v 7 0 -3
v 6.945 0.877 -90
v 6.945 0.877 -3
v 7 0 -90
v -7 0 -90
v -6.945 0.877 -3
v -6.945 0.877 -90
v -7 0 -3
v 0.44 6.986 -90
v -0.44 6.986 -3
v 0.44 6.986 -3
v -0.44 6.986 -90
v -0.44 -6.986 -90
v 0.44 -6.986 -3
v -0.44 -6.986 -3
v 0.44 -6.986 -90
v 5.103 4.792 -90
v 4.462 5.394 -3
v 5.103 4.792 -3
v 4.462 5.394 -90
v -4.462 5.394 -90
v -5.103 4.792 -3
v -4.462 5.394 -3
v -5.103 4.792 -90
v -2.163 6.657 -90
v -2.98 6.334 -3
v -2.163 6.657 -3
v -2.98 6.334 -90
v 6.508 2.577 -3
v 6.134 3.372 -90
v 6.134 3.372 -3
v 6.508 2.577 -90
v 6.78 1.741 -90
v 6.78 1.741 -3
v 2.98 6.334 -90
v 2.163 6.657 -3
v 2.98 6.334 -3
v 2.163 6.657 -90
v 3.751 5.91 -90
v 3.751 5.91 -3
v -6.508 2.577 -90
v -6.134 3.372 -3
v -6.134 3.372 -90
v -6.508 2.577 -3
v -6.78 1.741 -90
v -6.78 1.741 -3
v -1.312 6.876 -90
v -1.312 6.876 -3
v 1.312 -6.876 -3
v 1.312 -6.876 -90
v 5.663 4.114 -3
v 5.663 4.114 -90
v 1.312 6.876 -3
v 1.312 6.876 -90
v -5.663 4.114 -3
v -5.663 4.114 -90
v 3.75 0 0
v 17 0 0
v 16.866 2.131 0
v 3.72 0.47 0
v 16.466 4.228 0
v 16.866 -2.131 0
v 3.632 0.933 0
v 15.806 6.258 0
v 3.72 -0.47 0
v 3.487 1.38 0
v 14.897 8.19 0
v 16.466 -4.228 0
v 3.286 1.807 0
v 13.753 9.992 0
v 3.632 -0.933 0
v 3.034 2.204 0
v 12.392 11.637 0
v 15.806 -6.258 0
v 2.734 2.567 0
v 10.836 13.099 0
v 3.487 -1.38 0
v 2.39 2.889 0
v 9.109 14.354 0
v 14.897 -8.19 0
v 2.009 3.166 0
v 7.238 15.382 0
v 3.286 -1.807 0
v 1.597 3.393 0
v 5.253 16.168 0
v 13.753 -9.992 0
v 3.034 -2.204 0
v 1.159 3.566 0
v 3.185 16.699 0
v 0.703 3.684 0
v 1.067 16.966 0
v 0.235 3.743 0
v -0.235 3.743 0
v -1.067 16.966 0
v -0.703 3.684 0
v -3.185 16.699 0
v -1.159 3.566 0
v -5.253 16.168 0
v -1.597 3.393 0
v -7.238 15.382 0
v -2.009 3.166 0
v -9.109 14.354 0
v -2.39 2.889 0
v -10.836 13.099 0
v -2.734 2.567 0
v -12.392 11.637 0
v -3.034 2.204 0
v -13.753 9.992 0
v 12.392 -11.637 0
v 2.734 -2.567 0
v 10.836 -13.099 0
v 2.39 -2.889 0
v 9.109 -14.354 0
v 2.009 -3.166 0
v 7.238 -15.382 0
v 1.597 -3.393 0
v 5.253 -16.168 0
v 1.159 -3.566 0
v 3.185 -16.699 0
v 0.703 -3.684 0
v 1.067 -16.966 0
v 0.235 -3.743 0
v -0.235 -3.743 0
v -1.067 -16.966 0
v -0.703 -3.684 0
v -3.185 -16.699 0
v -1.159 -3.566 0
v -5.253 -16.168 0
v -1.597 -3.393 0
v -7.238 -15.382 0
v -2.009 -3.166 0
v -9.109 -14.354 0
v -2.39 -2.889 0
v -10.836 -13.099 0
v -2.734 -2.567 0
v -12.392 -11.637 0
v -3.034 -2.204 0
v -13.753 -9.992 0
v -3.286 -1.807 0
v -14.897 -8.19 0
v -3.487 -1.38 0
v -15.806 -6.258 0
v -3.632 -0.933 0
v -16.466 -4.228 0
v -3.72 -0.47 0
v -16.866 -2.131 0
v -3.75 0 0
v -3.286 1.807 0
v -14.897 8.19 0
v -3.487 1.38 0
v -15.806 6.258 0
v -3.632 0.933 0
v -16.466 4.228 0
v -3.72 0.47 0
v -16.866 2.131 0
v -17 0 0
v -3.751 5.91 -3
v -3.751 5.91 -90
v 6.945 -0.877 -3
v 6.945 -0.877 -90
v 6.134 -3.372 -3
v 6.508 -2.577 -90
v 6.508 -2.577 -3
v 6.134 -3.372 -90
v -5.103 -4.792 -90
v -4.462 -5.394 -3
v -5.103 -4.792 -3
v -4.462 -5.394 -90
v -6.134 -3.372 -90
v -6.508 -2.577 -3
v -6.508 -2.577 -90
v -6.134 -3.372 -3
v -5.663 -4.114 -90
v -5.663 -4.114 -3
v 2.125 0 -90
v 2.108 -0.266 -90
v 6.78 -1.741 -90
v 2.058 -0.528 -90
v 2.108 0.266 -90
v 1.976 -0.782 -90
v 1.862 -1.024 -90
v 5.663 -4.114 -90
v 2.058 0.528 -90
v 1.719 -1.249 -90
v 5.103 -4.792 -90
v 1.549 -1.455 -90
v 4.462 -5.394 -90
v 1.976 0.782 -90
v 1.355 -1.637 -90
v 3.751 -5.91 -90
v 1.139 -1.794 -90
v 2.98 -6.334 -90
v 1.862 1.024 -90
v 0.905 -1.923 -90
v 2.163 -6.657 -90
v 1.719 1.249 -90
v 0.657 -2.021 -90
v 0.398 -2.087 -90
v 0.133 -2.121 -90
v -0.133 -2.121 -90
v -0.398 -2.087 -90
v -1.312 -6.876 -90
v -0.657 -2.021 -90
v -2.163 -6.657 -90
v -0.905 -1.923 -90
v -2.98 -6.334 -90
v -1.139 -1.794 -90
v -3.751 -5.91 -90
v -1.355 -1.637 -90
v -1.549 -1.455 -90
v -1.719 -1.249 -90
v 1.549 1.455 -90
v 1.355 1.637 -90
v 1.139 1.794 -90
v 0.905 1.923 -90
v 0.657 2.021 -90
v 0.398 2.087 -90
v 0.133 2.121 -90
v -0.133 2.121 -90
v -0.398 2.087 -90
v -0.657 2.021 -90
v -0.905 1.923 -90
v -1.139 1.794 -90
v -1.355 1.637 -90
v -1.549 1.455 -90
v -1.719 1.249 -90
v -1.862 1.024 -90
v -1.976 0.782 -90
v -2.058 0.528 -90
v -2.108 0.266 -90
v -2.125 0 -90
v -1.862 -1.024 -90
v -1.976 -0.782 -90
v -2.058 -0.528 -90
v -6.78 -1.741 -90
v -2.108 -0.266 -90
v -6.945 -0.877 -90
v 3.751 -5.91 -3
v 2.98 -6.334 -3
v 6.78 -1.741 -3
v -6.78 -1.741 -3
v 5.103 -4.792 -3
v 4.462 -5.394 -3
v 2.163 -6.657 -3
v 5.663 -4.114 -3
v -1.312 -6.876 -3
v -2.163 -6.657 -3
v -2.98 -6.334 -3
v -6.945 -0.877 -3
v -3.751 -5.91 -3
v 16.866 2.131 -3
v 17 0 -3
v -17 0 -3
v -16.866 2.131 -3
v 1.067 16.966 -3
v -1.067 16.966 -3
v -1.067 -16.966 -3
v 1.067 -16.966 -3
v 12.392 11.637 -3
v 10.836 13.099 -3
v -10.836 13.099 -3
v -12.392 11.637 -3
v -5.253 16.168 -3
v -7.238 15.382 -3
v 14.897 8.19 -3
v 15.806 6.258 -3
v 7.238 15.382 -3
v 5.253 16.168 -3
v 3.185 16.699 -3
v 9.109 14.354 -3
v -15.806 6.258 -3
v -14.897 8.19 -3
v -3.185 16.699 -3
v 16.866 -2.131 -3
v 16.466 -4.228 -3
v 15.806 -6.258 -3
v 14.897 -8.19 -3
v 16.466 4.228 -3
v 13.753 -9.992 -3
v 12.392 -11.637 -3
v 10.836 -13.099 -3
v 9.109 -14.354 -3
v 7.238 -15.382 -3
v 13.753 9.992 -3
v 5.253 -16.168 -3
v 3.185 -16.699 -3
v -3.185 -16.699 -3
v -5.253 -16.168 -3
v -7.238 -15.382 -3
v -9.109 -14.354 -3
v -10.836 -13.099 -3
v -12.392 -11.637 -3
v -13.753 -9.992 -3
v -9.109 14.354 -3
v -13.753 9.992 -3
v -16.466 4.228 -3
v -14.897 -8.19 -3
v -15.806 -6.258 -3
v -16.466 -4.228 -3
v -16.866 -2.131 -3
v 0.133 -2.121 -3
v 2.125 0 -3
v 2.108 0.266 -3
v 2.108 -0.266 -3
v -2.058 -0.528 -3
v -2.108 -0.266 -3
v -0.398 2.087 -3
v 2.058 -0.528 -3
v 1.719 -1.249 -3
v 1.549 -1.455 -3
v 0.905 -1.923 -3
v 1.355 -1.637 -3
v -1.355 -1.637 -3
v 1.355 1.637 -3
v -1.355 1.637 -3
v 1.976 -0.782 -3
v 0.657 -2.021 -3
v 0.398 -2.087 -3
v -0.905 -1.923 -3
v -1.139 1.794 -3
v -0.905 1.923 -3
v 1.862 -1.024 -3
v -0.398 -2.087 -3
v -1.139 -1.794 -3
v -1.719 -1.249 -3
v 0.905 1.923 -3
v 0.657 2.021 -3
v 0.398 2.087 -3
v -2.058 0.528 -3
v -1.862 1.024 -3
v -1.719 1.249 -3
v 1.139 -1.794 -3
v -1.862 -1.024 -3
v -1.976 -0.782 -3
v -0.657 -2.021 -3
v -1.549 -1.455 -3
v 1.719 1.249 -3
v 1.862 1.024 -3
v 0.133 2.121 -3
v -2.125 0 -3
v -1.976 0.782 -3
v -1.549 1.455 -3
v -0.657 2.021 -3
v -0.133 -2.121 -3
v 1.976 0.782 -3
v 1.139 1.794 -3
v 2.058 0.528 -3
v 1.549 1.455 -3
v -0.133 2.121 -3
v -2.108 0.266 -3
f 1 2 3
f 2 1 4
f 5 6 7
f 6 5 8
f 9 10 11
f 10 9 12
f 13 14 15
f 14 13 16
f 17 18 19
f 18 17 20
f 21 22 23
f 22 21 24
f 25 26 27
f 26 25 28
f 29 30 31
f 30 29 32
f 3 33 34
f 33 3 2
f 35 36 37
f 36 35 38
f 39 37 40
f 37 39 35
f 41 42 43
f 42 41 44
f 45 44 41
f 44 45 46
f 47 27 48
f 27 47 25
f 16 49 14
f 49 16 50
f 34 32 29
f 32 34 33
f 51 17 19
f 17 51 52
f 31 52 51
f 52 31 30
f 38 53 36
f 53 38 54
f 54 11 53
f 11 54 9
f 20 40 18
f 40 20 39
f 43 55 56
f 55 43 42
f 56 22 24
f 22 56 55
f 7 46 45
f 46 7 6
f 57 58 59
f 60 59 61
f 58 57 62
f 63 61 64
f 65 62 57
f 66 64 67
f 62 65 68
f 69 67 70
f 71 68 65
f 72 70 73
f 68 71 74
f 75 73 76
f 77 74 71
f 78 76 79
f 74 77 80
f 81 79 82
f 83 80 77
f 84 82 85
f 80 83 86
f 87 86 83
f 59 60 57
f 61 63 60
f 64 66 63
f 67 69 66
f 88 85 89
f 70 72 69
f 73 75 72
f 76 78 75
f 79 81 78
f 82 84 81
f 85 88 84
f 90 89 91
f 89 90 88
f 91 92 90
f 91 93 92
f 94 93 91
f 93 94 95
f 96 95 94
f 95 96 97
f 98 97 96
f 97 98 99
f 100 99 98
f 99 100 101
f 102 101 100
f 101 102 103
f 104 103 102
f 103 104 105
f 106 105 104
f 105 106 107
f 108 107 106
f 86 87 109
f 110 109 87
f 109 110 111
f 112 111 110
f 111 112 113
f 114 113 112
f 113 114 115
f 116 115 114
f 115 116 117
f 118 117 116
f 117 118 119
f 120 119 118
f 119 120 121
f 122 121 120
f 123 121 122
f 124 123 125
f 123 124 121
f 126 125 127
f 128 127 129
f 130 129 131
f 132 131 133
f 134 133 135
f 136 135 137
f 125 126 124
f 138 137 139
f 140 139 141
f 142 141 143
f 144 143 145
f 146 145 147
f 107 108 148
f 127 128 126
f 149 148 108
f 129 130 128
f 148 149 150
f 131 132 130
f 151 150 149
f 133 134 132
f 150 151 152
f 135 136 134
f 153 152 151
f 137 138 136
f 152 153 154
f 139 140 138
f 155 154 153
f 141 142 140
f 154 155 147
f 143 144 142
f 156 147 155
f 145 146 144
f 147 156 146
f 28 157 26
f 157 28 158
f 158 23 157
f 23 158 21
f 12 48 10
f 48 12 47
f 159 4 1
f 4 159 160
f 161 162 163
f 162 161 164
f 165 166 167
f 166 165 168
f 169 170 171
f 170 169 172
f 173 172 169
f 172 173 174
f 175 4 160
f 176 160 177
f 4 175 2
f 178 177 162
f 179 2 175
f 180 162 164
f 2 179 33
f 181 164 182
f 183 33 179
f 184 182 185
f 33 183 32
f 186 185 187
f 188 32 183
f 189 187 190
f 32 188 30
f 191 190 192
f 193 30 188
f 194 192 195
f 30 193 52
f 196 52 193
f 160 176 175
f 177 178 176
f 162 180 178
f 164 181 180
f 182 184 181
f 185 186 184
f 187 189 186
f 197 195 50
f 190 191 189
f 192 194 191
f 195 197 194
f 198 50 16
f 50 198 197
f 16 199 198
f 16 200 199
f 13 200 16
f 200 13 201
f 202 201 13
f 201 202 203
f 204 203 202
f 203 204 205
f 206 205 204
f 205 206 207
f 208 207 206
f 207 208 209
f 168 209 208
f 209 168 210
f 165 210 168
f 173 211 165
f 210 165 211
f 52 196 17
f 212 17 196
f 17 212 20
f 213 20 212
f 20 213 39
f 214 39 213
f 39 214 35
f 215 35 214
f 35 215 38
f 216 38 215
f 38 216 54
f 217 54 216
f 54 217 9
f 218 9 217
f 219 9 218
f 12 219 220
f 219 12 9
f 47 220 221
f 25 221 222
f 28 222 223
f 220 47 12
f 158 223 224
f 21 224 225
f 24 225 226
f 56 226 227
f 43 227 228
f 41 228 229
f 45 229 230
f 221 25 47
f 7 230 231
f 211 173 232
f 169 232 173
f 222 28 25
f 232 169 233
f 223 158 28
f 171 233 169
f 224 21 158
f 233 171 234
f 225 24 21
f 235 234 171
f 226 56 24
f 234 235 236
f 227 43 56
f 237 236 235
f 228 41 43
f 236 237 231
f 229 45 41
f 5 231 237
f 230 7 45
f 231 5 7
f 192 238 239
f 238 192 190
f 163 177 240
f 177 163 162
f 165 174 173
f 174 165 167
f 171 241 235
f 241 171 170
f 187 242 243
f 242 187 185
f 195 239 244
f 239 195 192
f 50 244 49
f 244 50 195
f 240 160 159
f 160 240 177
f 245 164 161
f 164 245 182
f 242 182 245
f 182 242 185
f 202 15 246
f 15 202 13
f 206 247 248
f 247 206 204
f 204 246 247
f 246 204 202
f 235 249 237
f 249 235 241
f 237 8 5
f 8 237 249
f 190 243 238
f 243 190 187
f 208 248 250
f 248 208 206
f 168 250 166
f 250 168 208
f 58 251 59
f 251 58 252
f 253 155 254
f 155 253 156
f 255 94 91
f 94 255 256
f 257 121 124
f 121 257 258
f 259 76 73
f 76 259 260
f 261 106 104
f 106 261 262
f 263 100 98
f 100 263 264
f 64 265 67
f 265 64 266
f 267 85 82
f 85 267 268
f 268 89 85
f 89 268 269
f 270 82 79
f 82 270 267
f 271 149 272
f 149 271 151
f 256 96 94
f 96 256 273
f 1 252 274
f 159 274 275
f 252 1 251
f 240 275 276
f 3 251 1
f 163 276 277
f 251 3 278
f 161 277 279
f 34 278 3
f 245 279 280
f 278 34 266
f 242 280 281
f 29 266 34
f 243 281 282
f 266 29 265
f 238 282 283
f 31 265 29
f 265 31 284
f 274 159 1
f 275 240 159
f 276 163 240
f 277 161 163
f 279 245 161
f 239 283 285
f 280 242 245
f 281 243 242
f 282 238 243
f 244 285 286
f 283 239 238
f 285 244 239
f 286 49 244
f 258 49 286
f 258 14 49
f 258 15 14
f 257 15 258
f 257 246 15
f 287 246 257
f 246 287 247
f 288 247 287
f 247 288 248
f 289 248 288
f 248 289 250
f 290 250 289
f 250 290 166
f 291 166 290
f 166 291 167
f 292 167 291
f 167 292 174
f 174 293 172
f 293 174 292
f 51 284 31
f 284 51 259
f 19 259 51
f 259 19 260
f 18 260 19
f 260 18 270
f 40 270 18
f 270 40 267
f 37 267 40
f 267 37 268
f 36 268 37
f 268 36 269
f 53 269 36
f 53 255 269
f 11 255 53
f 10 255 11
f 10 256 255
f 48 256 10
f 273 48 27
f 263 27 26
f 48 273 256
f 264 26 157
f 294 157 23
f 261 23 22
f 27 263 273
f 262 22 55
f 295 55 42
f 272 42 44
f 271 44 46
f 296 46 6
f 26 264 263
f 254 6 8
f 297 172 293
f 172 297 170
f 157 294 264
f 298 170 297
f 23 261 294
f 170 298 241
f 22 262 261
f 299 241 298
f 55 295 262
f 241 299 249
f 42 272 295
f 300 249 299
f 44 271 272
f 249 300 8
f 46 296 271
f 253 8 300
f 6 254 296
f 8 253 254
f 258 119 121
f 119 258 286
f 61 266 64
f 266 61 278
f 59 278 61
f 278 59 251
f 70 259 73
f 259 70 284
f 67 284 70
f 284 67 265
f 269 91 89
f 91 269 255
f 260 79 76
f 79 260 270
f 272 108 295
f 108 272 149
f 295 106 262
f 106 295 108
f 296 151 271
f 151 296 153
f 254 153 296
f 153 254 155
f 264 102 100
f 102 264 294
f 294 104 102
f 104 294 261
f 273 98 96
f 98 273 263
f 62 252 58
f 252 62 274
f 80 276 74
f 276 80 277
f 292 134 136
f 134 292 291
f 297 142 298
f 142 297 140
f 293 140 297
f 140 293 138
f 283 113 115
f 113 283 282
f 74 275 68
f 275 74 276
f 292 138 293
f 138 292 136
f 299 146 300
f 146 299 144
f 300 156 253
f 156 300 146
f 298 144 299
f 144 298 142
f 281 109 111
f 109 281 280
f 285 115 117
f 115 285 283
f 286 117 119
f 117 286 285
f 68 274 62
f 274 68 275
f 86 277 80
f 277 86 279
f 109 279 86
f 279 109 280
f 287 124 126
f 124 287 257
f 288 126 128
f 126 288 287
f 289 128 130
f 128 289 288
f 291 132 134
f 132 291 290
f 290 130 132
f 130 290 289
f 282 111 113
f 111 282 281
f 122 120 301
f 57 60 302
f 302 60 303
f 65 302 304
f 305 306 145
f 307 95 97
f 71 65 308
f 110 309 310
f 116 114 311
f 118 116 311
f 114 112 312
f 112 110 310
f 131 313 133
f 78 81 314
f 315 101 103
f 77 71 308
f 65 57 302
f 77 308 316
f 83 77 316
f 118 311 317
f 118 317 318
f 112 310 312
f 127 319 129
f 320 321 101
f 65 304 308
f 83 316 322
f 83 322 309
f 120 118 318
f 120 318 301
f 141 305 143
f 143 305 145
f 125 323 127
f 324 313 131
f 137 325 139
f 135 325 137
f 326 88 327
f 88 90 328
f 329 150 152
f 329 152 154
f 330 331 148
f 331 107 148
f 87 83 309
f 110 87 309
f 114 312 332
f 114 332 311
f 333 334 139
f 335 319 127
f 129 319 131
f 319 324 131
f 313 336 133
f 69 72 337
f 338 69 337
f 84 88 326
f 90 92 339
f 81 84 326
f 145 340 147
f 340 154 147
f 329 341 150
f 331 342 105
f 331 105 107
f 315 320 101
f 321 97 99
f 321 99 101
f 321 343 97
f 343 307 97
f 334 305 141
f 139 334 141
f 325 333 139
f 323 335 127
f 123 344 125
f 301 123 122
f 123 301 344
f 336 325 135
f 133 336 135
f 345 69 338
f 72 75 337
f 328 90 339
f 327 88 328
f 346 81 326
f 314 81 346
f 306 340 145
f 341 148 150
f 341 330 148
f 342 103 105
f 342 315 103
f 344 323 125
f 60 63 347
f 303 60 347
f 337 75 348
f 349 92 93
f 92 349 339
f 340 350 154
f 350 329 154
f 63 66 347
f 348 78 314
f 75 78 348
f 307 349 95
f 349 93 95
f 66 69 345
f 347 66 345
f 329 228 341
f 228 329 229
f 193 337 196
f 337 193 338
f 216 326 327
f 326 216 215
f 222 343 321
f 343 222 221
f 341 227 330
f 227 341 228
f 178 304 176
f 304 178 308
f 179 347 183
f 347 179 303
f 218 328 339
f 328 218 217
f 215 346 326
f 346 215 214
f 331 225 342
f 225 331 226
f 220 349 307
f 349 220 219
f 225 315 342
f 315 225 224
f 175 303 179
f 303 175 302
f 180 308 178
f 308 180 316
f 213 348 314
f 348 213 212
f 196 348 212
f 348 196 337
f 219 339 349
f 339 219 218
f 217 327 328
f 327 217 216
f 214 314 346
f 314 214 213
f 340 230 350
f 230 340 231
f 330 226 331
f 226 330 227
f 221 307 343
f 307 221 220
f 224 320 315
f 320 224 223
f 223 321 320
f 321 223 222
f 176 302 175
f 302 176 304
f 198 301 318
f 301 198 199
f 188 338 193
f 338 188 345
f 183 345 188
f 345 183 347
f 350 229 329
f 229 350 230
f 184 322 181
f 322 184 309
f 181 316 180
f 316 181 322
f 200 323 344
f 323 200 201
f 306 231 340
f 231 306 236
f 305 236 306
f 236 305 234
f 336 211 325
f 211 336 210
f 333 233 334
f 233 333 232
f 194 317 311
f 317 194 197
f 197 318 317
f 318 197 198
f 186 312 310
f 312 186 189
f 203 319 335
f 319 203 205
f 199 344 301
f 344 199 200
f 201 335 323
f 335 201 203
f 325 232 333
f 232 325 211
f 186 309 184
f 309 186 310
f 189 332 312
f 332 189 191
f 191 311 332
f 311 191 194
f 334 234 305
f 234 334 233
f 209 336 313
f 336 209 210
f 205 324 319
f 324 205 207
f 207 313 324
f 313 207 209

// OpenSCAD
$fn = 50;


difference() {
	union() {
		translate(v = [0, 0, -90.0000000000]) {
			cylinder(h = 90, r = 7.0000000000);
		}
		translate(v = [0, 0, -3.0000000000]) {
			cylinder(h = 3, r = 17.0000000000);
		}
	}
	union() {
		translate(v = [0, 0, 0]) {
			rotate(a = [0, 0, 0]) {
				difference() {
					union() {
						#translate(v = [0, 0, -90.0000000000]) {
							cylinder(h = 90, r = 2.0000000000);
						}
						#translate(v = [0, 0, -3]) {
							cylinder(h = 3, r1 = 2.1250000000, r2 = 3.7500000000);
						}
						#translate(v = [0, 0, -90.0000000000]) {
							cylinder(h = 90, r = 2.1250000000);
						}
						#translate(v = [0, 0, -90.0000000000]) {
							cylinder(h = 90, r = 2.0000000000);
						}
					}
					union();
				}
			}
		}
	}
}
